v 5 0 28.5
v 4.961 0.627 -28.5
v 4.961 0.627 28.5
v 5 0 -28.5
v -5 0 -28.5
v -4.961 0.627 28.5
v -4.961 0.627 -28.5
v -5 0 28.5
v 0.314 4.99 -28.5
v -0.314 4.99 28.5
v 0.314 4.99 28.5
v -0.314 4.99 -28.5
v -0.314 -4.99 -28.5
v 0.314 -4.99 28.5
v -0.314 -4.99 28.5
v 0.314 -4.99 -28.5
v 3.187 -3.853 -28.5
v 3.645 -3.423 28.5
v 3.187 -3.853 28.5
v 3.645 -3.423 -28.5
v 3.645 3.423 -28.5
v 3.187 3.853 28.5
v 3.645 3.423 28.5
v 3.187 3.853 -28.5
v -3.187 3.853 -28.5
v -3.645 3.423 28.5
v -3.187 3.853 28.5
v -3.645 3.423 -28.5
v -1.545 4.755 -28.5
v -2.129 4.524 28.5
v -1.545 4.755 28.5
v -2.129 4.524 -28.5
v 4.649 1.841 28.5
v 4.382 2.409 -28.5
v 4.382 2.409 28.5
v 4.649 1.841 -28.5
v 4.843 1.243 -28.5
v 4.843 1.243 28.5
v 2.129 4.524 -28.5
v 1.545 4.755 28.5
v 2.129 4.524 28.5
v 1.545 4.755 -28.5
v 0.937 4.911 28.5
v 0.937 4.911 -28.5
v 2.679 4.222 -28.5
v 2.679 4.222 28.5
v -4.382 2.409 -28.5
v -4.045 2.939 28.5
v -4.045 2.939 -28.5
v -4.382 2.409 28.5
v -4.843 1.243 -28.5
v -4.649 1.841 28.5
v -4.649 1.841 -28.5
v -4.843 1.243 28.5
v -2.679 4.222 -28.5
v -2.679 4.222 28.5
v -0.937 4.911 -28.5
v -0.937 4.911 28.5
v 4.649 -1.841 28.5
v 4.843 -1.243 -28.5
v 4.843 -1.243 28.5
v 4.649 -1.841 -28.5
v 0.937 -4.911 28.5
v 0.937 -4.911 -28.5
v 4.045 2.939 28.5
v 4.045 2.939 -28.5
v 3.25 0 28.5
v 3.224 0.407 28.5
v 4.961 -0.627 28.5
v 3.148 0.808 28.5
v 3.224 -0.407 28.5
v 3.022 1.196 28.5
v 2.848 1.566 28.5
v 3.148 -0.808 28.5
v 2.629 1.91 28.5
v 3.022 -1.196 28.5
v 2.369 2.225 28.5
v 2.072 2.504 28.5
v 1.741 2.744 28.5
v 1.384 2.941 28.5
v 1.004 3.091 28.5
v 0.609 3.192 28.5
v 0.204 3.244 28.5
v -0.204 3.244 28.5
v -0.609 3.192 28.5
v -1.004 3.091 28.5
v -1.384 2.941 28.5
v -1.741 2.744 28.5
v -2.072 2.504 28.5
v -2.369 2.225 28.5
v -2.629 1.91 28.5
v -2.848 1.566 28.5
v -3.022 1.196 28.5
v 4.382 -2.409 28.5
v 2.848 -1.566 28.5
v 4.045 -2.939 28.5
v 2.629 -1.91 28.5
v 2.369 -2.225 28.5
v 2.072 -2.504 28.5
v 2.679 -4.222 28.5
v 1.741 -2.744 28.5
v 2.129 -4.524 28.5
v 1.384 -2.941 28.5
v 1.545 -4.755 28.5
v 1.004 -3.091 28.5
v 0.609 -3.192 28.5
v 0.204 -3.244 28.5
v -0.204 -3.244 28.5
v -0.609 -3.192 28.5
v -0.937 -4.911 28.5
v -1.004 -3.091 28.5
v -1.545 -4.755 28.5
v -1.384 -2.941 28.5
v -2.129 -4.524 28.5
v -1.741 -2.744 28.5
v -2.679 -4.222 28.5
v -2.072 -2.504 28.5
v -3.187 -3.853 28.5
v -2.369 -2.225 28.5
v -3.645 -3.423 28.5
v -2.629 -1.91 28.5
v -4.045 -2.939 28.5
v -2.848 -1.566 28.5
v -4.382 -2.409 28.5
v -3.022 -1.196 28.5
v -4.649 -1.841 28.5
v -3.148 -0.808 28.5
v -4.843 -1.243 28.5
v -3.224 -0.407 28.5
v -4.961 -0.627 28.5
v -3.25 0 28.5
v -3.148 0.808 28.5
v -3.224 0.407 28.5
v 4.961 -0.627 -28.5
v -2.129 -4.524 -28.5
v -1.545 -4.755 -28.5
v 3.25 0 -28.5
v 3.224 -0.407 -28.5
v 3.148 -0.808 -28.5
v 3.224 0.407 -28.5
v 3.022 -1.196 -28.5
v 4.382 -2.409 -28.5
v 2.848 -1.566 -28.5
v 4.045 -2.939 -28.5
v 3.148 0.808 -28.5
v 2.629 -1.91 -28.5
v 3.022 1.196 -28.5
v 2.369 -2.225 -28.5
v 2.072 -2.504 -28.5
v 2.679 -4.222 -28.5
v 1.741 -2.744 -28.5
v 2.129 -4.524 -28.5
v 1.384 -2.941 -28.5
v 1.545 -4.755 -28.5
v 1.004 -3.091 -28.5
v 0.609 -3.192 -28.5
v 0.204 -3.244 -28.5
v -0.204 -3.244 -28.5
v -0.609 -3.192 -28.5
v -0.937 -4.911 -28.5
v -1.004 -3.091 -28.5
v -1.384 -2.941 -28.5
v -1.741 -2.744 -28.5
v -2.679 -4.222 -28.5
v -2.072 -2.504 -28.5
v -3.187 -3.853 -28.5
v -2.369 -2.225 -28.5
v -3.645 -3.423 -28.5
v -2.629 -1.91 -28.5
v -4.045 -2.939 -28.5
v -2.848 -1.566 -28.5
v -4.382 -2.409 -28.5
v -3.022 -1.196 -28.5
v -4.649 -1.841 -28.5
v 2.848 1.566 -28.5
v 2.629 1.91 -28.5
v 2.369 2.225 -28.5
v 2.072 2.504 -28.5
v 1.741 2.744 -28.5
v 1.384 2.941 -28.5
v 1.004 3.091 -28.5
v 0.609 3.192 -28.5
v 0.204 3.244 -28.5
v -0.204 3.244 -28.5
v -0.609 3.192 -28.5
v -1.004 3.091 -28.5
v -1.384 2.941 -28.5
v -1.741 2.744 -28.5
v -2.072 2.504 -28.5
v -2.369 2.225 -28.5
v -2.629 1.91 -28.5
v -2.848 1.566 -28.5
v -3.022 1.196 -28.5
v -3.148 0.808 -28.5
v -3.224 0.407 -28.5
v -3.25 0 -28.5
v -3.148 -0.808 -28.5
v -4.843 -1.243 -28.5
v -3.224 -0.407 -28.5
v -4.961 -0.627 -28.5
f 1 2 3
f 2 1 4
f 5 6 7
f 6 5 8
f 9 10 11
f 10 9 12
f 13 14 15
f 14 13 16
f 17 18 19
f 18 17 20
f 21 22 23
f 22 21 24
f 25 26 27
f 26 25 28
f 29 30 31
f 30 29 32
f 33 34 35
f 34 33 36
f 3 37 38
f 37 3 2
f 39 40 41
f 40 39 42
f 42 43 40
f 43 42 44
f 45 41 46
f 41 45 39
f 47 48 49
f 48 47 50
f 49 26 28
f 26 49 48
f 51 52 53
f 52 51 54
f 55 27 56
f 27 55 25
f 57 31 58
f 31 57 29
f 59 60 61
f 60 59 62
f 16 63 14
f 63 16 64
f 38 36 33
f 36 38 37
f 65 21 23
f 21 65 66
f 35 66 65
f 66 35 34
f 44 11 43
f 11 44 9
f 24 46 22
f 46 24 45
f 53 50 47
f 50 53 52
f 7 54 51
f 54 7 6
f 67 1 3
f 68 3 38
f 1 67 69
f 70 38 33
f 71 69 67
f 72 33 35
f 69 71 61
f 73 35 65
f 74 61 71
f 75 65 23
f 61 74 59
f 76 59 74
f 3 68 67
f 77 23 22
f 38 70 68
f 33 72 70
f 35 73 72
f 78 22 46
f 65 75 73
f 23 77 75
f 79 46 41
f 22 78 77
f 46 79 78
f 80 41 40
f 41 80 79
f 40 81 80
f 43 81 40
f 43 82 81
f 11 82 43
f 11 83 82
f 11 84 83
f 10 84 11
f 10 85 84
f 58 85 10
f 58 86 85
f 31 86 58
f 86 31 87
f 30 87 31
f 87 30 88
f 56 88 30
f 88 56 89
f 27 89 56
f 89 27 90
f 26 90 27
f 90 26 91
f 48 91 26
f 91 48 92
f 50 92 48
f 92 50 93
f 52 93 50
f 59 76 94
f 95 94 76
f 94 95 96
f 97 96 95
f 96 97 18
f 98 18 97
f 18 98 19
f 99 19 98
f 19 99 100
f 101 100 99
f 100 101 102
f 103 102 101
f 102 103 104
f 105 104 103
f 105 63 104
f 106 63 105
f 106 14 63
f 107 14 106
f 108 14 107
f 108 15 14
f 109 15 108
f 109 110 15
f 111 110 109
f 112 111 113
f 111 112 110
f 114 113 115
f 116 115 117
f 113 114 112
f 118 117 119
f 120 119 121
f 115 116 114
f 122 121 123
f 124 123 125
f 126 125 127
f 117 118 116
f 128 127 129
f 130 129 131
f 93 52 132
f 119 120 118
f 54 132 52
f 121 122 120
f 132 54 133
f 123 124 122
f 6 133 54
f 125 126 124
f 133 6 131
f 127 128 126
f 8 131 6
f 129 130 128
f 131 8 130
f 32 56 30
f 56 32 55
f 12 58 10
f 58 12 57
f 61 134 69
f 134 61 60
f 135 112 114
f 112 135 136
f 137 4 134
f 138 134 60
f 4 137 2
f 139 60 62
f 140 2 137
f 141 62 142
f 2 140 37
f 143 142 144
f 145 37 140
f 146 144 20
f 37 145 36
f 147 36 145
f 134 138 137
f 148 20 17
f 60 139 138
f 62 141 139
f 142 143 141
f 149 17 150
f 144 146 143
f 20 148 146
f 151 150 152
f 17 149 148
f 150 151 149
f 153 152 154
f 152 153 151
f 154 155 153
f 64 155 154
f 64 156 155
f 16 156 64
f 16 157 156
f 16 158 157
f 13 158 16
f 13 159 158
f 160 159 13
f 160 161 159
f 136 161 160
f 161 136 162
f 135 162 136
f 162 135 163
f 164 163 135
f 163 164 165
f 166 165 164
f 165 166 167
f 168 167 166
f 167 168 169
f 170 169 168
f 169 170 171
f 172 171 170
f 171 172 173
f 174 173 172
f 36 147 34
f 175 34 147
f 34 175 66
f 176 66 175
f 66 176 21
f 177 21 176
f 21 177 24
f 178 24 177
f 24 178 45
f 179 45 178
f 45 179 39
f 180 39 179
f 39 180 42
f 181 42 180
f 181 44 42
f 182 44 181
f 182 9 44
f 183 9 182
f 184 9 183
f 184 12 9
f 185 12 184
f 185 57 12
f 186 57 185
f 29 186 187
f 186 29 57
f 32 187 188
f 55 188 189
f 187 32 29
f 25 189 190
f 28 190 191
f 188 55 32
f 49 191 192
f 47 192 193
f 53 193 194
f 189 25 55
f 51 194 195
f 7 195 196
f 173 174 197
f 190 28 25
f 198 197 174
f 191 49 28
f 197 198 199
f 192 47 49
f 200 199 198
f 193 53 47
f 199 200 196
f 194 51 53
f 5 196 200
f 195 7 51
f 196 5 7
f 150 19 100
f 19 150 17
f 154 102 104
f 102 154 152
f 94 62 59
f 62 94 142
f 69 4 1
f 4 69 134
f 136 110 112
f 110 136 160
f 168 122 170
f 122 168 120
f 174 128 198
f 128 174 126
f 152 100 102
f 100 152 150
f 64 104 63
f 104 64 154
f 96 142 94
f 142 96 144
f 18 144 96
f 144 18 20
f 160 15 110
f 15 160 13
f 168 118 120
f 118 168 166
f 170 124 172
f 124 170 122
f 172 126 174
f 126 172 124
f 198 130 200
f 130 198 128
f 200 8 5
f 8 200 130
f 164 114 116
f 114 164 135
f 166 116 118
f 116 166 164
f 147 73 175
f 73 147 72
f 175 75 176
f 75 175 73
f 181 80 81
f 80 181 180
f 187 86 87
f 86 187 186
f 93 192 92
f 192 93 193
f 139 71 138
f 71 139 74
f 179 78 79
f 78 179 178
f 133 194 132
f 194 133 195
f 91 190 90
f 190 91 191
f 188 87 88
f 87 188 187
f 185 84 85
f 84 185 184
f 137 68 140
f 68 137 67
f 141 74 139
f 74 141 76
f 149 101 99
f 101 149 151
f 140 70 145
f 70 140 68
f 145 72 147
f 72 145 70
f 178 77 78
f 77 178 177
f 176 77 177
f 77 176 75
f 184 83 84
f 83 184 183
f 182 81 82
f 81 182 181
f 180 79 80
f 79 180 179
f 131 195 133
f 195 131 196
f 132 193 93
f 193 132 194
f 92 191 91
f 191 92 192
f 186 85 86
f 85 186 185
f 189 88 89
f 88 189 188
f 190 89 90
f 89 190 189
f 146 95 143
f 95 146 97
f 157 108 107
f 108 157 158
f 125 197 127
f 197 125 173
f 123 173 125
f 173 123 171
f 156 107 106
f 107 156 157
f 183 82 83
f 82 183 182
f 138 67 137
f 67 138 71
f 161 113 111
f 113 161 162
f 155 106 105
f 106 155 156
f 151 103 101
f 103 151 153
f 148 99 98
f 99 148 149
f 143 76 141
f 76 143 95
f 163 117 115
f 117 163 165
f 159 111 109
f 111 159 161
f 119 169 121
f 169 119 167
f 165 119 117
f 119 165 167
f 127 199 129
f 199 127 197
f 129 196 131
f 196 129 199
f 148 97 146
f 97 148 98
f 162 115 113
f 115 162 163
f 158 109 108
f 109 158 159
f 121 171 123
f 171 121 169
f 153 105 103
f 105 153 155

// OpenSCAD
$fn = 50;


difference() {
	union() {
		translate(v = [0, 0, -28.5000000000]) {
			cylinder(h = 57, r = 5.0000000000);
		}
	}
	union() {
		translate(v = [0, 0, -100.0000000000]) {
			cylinder(h = 200, r = 3.2500000000);
		}
	}
}
